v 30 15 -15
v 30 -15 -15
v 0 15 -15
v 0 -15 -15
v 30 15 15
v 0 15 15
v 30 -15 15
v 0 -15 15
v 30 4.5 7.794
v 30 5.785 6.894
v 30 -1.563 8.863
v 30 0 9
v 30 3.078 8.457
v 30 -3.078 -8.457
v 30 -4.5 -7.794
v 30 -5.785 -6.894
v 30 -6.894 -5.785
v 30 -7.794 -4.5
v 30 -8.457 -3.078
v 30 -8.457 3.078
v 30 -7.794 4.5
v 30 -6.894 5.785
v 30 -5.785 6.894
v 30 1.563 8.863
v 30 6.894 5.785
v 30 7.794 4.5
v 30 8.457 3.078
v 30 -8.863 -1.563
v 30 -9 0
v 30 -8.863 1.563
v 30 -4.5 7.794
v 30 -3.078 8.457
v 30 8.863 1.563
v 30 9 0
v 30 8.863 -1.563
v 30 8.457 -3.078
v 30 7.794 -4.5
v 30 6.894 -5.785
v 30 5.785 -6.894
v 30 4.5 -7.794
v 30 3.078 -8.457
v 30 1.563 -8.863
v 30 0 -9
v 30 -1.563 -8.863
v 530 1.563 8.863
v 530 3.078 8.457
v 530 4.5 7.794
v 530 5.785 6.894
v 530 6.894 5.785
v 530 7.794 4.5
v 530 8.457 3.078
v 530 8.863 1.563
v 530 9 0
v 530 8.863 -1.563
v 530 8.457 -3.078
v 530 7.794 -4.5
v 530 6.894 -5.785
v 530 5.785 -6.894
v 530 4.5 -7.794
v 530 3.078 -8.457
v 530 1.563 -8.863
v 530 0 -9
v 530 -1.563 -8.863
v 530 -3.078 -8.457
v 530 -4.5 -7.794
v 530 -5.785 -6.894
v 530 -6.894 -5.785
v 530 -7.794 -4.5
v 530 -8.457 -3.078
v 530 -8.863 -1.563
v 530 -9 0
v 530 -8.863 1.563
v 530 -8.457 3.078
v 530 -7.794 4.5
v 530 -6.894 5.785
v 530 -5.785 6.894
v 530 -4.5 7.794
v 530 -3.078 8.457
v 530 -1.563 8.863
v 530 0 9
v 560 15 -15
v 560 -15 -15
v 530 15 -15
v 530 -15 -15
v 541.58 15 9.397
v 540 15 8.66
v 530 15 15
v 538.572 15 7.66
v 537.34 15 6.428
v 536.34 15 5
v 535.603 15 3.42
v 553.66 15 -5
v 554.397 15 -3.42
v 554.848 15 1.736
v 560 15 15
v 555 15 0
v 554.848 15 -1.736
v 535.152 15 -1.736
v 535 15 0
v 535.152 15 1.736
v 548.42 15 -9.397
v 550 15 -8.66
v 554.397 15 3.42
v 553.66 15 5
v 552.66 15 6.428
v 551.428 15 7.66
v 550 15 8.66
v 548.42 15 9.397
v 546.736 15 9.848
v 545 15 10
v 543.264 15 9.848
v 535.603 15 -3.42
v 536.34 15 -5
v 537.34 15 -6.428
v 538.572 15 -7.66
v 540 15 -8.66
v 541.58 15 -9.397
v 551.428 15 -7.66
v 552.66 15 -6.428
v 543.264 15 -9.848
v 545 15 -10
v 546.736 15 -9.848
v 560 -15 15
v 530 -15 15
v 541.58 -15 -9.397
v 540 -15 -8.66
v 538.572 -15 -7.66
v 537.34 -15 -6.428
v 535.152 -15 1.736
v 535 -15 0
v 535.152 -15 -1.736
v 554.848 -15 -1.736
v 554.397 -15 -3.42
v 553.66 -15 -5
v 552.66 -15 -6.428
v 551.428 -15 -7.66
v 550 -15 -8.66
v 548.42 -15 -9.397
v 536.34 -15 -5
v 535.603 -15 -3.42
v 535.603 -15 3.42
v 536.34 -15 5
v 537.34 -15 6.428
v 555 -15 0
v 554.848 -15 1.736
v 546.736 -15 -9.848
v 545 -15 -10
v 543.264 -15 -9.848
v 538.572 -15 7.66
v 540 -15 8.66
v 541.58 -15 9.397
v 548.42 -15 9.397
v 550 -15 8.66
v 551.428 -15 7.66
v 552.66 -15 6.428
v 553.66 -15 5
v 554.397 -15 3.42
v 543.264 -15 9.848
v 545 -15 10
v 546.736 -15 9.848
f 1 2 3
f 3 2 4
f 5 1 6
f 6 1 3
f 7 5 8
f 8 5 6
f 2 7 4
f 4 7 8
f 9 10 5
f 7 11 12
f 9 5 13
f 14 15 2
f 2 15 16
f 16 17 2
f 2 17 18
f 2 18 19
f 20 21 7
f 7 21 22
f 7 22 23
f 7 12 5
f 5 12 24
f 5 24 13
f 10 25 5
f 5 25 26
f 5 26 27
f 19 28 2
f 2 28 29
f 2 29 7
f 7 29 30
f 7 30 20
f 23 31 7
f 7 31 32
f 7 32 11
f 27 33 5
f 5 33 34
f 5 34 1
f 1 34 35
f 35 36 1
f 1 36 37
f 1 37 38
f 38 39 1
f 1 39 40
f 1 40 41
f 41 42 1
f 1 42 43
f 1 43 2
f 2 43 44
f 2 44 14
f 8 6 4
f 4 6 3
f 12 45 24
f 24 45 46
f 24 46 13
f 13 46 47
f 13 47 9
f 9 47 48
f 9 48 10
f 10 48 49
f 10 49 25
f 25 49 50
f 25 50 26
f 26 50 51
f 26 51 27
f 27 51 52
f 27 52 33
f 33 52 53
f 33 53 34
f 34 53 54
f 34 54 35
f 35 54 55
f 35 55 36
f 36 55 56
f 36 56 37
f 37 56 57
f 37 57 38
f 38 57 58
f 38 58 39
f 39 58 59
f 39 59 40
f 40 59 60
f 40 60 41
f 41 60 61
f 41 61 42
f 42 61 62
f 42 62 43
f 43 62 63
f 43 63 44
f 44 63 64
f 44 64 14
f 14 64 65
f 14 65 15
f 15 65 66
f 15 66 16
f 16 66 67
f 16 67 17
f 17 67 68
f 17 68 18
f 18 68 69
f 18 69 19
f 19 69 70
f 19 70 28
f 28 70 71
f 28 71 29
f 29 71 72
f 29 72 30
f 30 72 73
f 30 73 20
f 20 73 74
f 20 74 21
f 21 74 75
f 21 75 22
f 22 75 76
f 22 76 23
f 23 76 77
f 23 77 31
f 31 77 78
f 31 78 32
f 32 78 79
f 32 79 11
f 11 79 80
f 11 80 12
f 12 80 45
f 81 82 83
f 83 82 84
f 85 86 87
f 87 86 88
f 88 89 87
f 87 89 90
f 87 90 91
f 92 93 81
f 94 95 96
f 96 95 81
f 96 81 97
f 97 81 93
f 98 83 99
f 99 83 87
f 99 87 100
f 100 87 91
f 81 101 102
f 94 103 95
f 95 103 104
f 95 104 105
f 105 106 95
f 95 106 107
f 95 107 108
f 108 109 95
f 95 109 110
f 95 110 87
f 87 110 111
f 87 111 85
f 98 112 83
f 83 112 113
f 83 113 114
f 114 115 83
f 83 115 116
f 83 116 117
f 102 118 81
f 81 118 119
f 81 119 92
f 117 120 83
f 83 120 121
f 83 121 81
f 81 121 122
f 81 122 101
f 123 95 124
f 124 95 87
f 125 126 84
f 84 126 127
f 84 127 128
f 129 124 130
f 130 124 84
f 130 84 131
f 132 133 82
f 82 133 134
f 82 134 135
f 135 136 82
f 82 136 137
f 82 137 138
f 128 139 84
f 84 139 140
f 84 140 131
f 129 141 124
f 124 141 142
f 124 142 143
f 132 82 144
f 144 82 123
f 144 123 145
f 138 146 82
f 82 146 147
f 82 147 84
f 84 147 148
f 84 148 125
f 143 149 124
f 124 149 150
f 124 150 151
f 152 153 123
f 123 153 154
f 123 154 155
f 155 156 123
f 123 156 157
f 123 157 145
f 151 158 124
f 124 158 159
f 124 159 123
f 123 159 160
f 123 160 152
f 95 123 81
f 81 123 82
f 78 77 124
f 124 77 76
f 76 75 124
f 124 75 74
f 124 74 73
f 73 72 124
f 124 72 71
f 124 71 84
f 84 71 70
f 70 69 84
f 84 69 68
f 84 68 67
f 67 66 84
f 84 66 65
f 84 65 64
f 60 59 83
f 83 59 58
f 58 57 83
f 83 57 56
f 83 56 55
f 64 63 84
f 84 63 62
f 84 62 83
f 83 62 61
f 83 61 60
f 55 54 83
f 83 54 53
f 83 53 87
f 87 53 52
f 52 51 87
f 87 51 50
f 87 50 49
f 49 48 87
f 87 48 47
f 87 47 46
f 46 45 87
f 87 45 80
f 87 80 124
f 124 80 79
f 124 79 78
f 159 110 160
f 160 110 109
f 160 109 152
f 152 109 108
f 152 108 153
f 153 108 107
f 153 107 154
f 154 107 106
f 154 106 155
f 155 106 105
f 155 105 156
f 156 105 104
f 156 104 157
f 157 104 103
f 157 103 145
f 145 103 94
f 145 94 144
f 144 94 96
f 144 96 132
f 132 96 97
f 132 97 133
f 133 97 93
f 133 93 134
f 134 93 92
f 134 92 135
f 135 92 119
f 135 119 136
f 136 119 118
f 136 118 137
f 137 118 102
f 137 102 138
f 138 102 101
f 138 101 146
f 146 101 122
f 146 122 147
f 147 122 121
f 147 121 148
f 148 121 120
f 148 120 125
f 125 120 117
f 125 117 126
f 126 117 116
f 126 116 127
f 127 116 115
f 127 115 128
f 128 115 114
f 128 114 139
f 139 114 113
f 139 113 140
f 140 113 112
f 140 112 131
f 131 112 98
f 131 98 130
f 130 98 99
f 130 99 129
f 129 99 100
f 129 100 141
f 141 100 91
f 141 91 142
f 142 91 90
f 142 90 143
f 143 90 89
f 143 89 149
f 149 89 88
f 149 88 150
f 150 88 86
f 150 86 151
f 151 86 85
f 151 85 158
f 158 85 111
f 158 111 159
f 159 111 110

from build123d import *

# Parameters (mm, degrees)
SKETCH1_W           = 30
SKETCH1_H           = 30
BOSS_EXTRUDE1_DEPTH = 30
SKETCH2_R           = 9
BOSS_EXTRUDE2_DEPTH = 500
SKETCH3_W           = 30
SKETCH3_H           = 30
BOSS_EXTRUDE3_DEPTH = 30
SKETCH4_R           = 10
CUT_EXTRUDE1_DEPTH  = 30


with BuildPart() as part:
    # Sketch1 → Boss-Extrude1 (new body)
    with BuildSketch(Plane(origin=(0, 0, 0), x_dir=(0, 0, -1), z_dir=(1, 0, 0))):
        Rectangle(SKETCH1_W, SKETCH1_H)
    extrude(amount=BOSS_EXTRUDE1_DEPTH)

    # Sketch2 → Boss-Extrude2 (add)
    with BuildSketch(Plane(origin=(30, 0, 0), x_dir=(0, 0, -1), z_dir=(1, 0, 0))):
        Circle(SKETCH2_R)
    extrude(amount=BOSS_EXTRUDE2_DEPTH)

    # Sketch3 → Boss-Extrude3 (add)
    with BuildSketch(Plane(origin=(530, 0, 0), x_dir=(0, 0, -1), z_dir=(1, 0, 0))):
        Rectangle(SKETCH3_W, SKETCH3_H)
    extrude(amount=BOSS_EXTRUDE3_DEPTH)

    # Sketch4 → Cut-Extrude1 (cut)
    with BuildSketch(Plane(origin=(0, 15, 0), x_dir=(1, 0, 0), z_dir=(0, 1, 0))):
        with Locations((545, 0)):
            Circle(SKETCH4_R)
    extrude(amount=-CUT_EXTRUDE1_DEPTH, mode=Mode.SUBTRACT)


solid = part.part
